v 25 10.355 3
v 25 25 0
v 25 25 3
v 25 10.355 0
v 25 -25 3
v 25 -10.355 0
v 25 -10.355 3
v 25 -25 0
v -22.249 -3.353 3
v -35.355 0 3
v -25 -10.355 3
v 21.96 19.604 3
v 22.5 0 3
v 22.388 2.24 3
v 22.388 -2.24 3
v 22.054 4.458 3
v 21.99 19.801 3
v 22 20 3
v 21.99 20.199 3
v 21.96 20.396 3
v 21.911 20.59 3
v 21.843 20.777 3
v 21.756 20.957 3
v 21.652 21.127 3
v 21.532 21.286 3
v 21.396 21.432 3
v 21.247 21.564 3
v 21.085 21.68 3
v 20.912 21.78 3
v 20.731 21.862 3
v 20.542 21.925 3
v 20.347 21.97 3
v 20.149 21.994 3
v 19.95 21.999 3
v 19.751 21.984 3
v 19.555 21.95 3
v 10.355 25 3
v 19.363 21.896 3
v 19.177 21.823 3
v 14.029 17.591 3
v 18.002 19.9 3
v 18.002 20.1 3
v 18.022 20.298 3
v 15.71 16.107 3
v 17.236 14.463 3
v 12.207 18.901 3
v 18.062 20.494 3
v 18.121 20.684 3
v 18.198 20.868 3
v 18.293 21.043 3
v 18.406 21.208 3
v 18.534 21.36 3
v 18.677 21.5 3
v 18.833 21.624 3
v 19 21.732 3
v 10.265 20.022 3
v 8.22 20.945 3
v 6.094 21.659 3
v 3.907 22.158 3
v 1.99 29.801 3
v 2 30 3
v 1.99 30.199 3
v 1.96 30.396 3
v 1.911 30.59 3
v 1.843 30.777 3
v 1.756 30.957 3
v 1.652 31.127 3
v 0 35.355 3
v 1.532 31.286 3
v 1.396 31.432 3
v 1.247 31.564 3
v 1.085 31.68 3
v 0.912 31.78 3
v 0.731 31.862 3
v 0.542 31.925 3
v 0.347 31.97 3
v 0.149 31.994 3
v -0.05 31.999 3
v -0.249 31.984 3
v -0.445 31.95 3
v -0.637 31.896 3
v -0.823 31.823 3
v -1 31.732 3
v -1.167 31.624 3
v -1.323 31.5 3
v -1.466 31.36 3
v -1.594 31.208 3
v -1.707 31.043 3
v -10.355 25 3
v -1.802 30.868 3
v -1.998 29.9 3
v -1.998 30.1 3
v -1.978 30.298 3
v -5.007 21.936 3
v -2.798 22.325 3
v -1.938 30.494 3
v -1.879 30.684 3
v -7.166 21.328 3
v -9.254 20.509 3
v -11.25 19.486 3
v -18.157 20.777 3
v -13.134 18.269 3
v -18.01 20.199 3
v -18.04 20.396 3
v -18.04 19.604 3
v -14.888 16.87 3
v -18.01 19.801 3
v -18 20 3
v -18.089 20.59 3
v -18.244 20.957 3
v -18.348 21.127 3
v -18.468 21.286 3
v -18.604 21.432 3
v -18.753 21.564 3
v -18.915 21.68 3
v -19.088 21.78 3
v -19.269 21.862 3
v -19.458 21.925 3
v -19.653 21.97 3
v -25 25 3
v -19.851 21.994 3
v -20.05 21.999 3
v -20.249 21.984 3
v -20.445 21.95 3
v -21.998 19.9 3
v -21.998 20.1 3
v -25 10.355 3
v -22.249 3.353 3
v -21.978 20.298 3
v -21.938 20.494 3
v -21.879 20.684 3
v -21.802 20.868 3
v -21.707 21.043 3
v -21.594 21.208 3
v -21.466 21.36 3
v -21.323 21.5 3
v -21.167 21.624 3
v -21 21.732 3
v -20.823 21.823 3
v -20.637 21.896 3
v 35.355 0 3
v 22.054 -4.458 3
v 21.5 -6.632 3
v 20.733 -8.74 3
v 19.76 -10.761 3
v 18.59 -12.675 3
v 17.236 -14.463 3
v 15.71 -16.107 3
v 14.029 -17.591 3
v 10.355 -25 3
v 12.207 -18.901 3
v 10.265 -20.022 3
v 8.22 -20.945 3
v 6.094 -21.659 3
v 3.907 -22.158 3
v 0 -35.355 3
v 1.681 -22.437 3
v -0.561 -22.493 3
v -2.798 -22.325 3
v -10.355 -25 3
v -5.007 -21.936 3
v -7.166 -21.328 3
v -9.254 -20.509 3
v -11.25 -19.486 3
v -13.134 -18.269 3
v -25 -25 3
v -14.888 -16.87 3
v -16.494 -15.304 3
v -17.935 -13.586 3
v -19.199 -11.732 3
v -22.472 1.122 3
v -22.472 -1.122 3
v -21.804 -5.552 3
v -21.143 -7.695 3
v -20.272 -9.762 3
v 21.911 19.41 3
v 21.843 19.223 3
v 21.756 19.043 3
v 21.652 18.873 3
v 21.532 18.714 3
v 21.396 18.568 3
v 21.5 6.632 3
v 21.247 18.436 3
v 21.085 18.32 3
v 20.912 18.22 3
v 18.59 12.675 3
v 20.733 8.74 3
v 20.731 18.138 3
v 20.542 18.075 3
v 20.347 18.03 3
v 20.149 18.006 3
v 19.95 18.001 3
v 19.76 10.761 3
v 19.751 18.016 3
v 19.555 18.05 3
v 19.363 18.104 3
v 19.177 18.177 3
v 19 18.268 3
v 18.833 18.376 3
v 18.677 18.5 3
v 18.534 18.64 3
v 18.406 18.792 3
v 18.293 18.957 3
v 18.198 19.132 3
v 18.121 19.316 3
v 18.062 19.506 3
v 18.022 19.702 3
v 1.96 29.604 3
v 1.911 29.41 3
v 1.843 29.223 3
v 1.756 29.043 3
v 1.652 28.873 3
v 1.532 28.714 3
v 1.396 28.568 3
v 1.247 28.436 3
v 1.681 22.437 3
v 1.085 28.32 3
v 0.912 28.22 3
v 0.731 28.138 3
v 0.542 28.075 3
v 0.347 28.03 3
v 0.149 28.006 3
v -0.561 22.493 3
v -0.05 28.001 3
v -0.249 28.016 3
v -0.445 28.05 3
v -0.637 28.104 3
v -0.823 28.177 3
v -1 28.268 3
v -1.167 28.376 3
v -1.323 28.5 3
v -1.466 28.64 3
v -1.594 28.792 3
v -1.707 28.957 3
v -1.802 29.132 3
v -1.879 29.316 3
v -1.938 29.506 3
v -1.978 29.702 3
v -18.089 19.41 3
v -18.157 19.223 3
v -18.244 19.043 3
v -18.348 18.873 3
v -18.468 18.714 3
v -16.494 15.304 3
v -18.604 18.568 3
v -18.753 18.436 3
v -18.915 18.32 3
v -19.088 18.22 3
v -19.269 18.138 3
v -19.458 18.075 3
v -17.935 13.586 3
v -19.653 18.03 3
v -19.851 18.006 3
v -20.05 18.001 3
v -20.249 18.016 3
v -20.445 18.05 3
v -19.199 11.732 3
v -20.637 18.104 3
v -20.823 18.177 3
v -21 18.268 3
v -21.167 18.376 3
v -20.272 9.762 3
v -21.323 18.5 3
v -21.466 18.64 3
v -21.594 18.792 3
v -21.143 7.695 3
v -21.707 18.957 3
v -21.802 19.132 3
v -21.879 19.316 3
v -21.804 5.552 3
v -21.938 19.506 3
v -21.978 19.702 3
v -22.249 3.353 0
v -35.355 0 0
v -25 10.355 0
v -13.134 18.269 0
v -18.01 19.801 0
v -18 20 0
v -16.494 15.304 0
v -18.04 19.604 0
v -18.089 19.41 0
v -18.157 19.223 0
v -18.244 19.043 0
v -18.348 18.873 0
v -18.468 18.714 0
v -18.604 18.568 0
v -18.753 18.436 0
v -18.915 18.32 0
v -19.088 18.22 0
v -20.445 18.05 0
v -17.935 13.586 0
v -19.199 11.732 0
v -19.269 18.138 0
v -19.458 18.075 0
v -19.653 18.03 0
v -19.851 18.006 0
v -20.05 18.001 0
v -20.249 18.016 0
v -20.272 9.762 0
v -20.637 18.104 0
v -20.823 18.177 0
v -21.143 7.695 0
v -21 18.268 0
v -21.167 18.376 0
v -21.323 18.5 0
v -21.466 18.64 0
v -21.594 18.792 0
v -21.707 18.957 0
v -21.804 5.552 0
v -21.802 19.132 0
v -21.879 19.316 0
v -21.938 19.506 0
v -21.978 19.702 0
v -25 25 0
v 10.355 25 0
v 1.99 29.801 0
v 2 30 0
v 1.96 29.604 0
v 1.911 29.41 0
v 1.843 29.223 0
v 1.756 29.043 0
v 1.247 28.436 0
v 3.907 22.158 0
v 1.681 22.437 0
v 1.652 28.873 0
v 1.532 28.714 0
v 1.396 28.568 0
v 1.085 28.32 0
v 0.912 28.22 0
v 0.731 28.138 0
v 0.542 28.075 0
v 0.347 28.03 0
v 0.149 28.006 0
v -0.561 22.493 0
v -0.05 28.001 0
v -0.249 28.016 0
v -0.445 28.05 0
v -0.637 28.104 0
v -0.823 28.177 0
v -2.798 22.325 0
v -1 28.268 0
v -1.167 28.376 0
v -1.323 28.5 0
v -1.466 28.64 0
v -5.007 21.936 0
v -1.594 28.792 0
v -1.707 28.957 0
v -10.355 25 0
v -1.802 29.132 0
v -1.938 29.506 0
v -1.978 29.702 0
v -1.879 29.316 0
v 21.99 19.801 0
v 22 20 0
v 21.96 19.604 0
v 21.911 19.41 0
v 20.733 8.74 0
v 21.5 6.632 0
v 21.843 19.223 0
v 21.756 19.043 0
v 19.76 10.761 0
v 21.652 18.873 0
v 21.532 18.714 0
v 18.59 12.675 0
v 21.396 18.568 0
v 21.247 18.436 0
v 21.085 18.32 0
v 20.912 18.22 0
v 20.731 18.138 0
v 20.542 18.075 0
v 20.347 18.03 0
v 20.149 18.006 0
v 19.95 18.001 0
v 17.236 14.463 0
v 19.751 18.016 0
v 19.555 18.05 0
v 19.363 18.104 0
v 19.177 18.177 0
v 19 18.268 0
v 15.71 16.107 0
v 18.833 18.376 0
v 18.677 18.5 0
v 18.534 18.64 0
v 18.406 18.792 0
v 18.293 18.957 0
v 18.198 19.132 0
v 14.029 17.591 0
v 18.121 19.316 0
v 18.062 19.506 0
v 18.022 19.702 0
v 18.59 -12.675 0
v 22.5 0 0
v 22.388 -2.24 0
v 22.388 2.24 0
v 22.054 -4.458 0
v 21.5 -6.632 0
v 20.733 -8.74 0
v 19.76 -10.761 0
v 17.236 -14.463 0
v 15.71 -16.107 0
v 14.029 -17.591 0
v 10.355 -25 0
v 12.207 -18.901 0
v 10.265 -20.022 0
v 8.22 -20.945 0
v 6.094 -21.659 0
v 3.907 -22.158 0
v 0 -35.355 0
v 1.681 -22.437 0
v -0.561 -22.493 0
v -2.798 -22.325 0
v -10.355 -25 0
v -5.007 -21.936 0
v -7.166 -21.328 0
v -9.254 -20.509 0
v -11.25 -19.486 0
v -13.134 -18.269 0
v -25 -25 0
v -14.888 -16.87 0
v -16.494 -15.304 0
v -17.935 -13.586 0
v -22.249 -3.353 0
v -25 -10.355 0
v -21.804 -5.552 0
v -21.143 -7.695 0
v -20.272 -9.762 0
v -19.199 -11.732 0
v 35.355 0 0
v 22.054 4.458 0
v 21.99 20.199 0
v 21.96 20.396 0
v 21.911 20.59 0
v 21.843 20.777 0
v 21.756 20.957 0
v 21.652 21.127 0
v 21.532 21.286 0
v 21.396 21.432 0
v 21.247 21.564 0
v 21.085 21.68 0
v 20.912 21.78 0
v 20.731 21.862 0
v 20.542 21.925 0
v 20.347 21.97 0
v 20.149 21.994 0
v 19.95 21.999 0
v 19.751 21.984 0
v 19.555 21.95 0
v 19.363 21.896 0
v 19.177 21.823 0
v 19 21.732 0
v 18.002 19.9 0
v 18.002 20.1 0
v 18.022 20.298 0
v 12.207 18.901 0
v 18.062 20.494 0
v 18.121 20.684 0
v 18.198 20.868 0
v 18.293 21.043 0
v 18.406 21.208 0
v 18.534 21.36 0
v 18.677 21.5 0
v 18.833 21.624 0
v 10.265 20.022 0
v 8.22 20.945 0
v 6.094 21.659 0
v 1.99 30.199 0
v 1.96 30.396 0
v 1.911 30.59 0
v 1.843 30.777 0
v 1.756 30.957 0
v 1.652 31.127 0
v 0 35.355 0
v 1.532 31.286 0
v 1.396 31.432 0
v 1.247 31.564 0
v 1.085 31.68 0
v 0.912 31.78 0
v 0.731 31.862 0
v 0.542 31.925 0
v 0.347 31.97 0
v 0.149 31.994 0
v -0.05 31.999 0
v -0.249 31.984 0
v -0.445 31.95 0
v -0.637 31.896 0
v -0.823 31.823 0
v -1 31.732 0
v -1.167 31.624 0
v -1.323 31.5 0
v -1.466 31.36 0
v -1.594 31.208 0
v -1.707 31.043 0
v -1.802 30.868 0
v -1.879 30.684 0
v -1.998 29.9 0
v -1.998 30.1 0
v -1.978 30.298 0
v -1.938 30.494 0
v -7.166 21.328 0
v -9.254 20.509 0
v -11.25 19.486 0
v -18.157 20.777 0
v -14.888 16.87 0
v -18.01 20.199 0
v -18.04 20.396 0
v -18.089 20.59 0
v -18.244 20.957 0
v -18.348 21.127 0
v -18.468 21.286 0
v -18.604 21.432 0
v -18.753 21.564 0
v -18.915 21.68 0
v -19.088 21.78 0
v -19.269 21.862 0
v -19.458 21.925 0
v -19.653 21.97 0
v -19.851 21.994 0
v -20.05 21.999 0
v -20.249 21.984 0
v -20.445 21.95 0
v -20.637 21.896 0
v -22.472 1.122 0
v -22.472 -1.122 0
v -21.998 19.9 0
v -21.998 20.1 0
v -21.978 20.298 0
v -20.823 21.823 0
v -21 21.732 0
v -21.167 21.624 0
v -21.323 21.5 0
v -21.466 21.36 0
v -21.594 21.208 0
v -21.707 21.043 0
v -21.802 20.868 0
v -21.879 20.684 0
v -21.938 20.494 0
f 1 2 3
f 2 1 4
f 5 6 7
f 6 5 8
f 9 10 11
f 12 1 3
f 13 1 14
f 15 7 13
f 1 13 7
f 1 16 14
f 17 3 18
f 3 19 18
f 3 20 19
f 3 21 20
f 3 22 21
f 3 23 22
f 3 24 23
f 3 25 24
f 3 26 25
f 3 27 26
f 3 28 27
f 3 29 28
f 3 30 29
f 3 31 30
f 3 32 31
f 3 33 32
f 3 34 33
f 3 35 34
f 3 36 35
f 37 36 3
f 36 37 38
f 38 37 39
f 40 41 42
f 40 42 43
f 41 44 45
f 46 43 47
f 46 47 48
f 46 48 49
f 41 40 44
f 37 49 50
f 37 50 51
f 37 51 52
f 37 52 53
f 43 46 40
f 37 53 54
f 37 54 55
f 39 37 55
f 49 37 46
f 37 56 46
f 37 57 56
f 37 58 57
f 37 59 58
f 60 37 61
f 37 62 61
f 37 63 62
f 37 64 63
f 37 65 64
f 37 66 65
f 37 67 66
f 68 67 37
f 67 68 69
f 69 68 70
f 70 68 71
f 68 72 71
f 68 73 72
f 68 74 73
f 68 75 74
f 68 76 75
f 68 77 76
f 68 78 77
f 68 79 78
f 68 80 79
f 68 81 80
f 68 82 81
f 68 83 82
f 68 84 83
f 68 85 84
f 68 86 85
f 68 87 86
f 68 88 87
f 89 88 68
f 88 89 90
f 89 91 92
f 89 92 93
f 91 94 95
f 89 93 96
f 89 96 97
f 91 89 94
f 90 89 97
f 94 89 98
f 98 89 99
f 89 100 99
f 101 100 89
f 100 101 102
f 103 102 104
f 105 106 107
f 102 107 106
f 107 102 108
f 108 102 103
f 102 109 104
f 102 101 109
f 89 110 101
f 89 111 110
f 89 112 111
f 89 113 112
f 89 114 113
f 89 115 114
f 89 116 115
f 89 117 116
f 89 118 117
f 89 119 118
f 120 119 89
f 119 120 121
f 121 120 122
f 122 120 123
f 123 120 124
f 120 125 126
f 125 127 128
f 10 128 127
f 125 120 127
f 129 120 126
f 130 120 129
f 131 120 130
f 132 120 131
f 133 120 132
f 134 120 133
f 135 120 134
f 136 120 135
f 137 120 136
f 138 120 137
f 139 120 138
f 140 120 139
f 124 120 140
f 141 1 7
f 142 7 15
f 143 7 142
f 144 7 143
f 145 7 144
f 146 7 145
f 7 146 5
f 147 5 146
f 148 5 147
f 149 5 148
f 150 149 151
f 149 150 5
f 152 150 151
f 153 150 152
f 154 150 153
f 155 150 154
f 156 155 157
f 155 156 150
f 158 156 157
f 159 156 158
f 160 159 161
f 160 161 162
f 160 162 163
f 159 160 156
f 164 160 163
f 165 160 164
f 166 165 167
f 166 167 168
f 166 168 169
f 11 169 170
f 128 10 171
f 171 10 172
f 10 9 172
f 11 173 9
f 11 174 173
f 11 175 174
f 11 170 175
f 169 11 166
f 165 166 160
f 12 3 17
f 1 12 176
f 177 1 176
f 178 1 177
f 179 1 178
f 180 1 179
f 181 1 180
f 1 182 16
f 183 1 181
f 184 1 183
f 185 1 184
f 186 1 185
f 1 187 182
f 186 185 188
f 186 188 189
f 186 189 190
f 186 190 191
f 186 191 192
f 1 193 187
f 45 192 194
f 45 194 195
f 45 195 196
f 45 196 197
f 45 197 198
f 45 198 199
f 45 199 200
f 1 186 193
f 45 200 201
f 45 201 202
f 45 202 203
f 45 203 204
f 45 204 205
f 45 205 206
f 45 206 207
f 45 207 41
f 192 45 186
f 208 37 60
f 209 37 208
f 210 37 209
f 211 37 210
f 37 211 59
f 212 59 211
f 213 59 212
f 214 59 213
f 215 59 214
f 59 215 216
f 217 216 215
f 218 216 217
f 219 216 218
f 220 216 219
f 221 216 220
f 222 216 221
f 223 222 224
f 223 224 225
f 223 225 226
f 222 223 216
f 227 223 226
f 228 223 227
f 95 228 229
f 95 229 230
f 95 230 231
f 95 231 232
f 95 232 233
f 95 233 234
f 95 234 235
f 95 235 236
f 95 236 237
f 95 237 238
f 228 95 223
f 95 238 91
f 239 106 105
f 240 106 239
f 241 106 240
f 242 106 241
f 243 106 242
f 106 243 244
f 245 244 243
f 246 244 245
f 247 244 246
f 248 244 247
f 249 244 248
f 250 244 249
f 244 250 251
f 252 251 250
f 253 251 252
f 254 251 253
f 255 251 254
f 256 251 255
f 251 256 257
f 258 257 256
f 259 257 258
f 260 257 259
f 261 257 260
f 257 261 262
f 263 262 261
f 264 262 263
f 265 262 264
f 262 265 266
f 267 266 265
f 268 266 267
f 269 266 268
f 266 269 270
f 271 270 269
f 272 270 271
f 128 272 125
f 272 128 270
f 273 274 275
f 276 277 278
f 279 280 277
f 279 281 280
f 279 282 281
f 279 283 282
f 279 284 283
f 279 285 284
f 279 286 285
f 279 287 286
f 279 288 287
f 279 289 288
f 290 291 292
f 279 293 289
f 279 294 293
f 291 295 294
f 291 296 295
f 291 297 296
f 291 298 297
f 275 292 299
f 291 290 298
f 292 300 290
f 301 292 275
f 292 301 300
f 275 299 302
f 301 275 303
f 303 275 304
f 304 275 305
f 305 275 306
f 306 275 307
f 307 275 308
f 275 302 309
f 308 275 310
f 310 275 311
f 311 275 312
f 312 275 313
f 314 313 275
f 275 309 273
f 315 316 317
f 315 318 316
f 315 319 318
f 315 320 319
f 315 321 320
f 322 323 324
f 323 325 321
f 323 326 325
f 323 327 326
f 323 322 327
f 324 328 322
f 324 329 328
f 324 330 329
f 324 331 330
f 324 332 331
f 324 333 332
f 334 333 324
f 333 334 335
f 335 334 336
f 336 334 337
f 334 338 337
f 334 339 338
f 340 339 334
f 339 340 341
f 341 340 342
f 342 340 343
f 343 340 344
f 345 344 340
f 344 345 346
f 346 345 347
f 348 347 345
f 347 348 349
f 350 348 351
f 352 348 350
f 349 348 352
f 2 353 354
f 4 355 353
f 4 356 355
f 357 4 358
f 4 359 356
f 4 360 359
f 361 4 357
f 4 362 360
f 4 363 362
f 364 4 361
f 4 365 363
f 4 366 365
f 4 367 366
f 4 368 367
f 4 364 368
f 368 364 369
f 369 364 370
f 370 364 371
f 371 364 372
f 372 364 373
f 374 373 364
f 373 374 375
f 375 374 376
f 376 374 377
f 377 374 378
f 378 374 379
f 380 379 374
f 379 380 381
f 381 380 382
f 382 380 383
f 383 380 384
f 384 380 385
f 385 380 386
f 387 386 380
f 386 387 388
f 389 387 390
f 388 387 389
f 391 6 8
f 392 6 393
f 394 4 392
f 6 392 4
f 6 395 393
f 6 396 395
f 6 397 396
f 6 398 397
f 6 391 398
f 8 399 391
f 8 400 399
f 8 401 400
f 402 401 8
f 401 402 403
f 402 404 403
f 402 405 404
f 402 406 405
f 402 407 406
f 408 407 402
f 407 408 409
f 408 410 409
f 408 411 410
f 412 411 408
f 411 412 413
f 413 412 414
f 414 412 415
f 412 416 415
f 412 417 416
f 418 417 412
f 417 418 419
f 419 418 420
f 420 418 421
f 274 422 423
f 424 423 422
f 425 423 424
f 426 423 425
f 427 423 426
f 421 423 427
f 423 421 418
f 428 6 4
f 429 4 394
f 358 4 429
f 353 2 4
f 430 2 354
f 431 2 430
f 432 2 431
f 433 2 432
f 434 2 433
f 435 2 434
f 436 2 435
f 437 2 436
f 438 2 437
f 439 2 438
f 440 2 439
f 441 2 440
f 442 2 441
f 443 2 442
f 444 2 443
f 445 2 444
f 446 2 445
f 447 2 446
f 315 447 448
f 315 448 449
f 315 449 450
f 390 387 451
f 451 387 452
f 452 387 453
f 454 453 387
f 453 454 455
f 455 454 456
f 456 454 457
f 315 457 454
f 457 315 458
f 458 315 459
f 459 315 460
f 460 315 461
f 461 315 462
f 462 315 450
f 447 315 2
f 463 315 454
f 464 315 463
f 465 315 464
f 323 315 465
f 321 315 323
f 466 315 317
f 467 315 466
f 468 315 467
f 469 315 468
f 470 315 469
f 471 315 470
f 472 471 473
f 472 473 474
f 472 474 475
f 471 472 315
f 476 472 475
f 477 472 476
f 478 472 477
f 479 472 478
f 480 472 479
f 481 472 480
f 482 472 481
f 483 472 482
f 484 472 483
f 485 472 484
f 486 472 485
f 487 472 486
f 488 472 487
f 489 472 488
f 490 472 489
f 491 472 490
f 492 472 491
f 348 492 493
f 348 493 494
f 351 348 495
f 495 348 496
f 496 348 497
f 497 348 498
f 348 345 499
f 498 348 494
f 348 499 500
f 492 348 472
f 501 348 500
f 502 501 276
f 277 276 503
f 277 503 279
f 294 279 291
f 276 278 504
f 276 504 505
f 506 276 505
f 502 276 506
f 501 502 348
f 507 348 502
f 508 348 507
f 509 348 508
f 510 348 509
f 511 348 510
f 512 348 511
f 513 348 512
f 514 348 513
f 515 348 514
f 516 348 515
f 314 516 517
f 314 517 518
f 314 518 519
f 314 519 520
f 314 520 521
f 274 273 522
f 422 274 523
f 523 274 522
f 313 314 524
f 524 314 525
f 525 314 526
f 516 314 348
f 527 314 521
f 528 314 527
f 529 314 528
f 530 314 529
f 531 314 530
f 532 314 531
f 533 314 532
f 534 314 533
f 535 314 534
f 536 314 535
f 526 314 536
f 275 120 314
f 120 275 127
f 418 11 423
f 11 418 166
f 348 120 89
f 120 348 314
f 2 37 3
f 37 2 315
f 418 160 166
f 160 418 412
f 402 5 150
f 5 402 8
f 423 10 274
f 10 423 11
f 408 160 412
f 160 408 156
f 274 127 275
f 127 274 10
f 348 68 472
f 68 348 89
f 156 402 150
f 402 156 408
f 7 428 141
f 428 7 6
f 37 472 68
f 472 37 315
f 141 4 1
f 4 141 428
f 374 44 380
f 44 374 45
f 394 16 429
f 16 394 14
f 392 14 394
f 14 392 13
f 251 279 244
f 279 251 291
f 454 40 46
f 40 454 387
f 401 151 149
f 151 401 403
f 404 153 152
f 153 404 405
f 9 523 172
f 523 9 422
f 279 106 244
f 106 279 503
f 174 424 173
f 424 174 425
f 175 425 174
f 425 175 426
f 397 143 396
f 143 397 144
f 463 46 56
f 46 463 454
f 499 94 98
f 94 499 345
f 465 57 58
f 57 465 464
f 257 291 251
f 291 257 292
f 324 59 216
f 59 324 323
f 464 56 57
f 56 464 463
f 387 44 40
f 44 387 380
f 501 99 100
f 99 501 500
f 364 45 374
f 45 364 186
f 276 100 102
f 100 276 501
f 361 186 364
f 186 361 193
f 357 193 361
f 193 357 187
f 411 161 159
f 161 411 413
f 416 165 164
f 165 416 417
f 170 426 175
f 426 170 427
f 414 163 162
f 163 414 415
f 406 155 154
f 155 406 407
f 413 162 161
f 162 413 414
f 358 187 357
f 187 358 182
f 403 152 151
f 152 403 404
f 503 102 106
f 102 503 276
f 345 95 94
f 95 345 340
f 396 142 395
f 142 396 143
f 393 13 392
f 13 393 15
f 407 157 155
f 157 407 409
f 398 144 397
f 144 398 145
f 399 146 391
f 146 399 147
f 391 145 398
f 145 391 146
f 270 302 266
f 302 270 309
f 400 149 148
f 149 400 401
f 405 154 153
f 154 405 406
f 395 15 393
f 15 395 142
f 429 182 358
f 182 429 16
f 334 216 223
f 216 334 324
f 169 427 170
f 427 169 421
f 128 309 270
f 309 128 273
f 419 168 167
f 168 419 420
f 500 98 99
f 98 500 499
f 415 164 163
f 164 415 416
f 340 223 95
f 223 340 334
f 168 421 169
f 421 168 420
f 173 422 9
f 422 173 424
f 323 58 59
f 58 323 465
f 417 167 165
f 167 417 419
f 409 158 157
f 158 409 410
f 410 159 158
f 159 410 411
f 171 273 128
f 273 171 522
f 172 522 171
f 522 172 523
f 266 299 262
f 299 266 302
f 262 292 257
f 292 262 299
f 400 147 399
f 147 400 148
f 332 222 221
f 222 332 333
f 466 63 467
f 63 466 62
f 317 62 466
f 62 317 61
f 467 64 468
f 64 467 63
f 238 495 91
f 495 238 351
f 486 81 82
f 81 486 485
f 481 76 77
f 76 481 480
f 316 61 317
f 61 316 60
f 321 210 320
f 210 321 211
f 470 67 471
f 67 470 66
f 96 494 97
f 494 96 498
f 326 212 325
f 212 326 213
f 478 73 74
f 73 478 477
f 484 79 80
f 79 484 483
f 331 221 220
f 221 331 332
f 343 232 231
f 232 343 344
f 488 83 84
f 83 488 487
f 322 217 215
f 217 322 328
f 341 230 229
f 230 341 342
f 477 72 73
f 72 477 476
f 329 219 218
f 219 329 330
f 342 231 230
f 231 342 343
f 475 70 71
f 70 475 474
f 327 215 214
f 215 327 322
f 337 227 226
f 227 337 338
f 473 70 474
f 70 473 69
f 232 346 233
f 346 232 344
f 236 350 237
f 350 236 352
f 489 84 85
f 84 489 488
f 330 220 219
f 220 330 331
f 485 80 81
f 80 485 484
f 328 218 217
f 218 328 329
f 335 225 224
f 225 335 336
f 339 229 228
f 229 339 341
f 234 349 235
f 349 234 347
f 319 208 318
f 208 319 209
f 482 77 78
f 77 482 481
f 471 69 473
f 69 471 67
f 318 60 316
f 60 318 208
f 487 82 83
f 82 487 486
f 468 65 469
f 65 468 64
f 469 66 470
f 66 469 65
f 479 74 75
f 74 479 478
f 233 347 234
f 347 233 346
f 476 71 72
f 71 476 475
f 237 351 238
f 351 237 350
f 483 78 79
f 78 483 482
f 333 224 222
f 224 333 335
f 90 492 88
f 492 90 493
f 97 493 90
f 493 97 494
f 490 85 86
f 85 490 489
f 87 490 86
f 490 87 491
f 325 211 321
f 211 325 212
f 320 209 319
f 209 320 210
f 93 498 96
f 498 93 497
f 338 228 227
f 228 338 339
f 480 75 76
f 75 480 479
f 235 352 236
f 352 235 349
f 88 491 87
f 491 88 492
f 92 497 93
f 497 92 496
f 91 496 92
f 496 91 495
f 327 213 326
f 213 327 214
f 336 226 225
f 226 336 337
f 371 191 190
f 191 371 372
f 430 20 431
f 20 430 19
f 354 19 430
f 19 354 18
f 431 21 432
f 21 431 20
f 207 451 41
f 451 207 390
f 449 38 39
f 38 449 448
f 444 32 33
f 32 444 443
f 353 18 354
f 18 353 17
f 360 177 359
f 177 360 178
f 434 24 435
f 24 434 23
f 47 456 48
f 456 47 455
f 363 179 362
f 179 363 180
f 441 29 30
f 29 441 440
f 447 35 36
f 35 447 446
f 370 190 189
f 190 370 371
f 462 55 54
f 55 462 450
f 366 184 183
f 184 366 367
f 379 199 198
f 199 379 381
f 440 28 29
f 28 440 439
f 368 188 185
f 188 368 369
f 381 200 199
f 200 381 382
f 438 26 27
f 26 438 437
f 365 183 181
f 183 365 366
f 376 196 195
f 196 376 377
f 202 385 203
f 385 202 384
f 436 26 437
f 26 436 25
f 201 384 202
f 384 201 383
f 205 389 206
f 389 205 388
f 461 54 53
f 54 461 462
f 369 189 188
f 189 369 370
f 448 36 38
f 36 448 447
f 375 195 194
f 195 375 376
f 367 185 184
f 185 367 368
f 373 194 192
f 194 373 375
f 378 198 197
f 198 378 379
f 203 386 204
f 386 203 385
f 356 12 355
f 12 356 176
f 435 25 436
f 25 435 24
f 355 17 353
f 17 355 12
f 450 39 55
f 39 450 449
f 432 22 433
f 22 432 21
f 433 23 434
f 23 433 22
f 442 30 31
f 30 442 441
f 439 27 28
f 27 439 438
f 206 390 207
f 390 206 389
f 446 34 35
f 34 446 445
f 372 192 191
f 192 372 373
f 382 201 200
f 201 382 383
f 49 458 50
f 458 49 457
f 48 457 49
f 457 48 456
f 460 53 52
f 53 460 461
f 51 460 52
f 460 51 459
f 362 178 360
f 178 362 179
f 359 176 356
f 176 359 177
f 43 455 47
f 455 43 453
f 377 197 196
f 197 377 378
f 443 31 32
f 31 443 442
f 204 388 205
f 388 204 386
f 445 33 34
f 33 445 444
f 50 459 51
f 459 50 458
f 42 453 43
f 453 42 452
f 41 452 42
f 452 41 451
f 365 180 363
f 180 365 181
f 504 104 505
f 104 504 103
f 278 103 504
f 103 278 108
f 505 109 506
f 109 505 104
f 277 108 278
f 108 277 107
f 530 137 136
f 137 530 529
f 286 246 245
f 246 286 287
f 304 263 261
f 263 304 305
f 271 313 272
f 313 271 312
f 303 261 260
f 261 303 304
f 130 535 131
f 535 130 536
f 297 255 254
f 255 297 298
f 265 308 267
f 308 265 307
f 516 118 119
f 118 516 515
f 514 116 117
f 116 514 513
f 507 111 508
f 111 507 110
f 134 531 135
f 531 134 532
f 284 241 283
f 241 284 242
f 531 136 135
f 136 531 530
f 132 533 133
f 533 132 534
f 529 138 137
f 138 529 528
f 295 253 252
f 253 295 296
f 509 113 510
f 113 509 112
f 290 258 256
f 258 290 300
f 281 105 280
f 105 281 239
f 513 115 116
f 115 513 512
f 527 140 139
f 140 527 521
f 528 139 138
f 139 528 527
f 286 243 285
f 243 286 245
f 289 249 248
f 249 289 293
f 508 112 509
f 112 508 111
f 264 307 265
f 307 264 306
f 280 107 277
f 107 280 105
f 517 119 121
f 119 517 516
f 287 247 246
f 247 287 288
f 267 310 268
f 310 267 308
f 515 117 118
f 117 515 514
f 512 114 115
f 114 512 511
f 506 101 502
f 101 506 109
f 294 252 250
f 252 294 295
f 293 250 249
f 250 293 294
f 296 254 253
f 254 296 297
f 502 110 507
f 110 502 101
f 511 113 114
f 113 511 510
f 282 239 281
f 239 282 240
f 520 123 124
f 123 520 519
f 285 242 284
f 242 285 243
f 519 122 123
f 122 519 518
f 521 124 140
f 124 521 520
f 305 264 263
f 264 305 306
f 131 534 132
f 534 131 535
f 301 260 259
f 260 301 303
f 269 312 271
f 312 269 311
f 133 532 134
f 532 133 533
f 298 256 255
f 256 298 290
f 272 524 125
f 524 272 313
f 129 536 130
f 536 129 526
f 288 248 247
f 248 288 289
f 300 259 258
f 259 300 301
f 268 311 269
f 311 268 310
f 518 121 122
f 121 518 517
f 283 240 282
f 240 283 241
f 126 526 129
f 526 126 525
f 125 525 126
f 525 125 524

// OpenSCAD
$fn=63;

module dial_hole() {
    cylinder(10,45/2,45/2);
}

module base() {
    cube([50,50,3],center=true);
    rotate([0,0,45]) cube([50,50,3],center=true);
}

difference() {
    translate([0,0,1.5]) base();
    translate([0,0,-1]) dial_hole();
    translate([0,30,-1]) cylinder(10,4/2,4/2);
    translate([20,20,-1]) cylinder(10,4/2,4/2);
    translate([-20,20,-1]) cylinder(10,4/2,4/2);
}
